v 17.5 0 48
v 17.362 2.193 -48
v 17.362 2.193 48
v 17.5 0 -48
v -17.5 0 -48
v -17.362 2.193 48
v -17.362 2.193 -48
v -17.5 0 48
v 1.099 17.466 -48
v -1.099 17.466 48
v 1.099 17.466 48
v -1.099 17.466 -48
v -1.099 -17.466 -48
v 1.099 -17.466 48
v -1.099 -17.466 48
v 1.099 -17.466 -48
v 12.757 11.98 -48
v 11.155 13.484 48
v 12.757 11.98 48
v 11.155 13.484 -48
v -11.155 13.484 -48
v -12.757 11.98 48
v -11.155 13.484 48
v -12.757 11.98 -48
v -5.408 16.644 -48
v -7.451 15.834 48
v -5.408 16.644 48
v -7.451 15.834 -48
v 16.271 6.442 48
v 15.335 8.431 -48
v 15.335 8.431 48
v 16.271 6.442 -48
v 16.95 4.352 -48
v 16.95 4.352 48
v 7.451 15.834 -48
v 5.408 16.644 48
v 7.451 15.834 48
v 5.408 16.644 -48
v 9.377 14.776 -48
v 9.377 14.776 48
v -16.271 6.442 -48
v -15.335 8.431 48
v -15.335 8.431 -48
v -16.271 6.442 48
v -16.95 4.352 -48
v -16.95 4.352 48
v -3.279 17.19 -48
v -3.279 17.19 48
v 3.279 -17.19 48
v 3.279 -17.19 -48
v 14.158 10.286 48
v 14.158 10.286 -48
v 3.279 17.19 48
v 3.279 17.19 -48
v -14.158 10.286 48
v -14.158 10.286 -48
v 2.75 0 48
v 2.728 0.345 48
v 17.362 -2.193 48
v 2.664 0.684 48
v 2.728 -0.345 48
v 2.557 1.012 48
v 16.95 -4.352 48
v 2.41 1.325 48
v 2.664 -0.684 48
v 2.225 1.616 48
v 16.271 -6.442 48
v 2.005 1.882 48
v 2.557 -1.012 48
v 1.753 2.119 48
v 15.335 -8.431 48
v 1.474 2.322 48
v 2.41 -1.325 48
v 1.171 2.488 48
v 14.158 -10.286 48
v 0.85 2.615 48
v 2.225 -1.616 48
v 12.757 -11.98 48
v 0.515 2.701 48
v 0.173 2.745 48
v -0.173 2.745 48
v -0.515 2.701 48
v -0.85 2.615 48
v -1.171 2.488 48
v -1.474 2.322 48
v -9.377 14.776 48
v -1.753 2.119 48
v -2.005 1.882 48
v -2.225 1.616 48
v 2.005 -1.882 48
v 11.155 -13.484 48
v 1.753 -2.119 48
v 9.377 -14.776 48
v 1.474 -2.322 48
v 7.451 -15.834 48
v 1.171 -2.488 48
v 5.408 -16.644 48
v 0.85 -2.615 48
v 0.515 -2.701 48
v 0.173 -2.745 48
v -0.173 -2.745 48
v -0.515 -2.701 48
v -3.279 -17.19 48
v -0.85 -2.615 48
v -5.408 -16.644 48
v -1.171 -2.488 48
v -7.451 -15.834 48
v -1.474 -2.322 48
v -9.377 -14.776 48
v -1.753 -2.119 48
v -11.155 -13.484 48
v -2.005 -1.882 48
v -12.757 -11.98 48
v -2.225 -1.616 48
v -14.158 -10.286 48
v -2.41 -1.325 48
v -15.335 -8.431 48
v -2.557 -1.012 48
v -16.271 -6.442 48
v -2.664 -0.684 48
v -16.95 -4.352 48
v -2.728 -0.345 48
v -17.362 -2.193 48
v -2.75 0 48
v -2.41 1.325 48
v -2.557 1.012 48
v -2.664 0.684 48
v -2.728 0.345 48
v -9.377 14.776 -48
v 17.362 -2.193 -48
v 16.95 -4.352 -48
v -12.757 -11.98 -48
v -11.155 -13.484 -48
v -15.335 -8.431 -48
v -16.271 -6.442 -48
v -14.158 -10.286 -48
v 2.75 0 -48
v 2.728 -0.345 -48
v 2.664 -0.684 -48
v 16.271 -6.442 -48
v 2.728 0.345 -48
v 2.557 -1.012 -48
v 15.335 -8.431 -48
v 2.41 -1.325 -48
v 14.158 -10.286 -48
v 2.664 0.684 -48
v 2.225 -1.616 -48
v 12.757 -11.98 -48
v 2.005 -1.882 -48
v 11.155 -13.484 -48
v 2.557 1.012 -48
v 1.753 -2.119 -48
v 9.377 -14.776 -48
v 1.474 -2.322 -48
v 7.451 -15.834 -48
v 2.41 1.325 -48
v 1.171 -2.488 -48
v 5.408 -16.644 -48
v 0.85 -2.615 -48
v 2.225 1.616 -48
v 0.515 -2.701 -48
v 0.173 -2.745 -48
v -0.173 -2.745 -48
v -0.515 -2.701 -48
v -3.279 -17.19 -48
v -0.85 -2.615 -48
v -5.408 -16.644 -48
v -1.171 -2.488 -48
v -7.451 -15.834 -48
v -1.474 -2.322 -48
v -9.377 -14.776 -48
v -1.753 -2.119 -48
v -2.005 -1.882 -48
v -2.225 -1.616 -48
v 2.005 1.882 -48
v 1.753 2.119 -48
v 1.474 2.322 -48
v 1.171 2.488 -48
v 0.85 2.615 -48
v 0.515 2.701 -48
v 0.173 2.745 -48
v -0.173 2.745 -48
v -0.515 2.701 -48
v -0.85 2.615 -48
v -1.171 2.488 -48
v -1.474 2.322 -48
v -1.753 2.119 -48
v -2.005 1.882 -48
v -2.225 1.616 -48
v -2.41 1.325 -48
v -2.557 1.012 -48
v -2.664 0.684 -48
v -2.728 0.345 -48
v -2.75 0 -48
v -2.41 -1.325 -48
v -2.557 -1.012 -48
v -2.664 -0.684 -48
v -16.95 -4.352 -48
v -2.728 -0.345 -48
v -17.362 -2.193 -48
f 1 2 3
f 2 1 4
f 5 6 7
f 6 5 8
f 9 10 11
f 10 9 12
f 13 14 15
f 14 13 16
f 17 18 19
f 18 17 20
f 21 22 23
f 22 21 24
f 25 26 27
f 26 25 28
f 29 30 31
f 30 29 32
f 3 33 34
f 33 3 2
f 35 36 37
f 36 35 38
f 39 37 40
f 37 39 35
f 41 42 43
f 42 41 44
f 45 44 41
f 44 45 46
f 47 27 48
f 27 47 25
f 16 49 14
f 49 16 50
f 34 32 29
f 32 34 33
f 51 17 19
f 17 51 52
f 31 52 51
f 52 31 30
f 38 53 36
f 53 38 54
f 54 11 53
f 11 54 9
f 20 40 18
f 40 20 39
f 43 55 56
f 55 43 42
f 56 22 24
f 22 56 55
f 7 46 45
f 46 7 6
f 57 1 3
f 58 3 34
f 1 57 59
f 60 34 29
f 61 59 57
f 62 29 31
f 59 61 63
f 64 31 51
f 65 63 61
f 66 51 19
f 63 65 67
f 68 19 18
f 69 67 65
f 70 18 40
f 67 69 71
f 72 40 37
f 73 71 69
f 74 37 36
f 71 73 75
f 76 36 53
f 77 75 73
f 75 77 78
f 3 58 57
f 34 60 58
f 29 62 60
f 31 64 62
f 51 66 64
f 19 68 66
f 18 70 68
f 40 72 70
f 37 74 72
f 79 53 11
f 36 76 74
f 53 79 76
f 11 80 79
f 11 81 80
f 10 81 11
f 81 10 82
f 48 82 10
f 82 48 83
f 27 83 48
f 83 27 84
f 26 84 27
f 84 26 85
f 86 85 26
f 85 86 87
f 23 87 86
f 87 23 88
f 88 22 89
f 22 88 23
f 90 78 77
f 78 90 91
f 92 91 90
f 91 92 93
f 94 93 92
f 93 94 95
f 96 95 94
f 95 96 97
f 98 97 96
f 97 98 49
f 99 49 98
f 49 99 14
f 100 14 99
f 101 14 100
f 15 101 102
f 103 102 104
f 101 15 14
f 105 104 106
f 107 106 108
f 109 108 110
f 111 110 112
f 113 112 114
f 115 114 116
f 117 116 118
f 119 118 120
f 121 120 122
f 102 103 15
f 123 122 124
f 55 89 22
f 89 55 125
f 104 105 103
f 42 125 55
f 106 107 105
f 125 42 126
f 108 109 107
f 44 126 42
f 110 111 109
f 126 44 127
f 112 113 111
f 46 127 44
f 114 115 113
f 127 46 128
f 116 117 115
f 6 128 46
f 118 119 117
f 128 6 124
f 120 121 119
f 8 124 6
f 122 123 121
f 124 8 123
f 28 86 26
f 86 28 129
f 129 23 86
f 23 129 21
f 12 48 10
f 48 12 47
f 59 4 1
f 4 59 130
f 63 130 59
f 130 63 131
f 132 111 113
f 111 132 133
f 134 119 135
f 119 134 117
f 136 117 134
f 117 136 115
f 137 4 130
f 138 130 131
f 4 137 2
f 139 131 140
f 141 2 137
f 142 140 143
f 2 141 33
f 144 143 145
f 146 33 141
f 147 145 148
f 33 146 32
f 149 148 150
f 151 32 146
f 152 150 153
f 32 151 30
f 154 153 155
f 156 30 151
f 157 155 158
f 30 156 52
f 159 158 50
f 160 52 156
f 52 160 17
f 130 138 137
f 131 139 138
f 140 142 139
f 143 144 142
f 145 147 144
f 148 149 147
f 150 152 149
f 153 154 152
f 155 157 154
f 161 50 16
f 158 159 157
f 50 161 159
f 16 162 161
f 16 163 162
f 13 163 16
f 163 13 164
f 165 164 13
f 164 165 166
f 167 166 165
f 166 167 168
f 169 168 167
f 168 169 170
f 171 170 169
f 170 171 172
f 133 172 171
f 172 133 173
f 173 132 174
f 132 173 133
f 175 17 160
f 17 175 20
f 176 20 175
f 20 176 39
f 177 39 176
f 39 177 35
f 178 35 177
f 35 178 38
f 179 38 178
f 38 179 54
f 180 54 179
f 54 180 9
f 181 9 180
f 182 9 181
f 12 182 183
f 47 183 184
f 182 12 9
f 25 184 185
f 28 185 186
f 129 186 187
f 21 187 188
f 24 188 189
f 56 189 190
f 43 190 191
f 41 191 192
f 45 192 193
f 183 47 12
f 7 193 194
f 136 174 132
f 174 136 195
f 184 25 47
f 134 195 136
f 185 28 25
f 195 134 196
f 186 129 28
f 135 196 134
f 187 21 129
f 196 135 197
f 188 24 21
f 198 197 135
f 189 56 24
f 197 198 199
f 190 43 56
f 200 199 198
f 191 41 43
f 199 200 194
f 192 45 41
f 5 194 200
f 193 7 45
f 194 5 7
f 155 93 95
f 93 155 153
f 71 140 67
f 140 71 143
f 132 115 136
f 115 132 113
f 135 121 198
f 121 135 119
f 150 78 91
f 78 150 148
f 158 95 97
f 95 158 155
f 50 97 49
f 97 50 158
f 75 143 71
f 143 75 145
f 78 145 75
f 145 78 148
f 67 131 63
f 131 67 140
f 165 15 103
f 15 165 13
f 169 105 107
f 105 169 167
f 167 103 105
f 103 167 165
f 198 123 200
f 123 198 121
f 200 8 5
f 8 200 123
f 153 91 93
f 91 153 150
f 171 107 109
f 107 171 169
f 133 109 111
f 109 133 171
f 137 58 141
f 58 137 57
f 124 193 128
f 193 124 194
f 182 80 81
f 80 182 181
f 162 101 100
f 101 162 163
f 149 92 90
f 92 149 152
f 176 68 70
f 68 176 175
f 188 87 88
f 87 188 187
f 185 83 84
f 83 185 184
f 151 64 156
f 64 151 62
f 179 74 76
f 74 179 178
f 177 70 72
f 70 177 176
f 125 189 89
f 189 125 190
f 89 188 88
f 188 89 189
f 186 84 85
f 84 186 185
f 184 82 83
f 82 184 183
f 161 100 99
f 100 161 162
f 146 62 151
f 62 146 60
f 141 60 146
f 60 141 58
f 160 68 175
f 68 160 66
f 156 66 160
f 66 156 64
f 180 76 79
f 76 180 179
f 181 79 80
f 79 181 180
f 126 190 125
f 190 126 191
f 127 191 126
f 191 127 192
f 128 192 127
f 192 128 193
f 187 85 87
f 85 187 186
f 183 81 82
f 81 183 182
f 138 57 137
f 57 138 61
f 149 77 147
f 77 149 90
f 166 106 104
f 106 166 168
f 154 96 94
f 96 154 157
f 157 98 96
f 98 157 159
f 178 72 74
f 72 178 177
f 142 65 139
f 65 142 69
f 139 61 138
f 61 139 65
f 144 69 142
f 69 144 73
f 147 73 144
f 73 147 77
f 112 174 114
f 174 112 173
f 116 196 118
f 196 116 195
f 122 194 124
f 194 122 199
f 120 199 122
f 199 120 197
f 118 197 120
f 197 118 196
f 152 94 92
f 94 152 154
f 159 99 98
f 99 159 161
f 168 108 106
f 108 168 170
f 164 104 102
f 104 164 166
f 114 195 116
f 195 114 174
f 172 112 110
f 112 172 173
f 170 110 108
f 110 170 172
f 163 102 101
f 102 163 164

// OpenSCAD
$fn = 50;


difference() {
	union() {
		translate(v = [0, 0, -48.0000000000]) {
			cylinder(h = 96, r = 17.5000000000);
		}
	}
	union() {
		translate(v = [0, 0, -100.0000000000]) {
			cylinder(h = 200, r = 2.7500000000);
		}
	}
}
